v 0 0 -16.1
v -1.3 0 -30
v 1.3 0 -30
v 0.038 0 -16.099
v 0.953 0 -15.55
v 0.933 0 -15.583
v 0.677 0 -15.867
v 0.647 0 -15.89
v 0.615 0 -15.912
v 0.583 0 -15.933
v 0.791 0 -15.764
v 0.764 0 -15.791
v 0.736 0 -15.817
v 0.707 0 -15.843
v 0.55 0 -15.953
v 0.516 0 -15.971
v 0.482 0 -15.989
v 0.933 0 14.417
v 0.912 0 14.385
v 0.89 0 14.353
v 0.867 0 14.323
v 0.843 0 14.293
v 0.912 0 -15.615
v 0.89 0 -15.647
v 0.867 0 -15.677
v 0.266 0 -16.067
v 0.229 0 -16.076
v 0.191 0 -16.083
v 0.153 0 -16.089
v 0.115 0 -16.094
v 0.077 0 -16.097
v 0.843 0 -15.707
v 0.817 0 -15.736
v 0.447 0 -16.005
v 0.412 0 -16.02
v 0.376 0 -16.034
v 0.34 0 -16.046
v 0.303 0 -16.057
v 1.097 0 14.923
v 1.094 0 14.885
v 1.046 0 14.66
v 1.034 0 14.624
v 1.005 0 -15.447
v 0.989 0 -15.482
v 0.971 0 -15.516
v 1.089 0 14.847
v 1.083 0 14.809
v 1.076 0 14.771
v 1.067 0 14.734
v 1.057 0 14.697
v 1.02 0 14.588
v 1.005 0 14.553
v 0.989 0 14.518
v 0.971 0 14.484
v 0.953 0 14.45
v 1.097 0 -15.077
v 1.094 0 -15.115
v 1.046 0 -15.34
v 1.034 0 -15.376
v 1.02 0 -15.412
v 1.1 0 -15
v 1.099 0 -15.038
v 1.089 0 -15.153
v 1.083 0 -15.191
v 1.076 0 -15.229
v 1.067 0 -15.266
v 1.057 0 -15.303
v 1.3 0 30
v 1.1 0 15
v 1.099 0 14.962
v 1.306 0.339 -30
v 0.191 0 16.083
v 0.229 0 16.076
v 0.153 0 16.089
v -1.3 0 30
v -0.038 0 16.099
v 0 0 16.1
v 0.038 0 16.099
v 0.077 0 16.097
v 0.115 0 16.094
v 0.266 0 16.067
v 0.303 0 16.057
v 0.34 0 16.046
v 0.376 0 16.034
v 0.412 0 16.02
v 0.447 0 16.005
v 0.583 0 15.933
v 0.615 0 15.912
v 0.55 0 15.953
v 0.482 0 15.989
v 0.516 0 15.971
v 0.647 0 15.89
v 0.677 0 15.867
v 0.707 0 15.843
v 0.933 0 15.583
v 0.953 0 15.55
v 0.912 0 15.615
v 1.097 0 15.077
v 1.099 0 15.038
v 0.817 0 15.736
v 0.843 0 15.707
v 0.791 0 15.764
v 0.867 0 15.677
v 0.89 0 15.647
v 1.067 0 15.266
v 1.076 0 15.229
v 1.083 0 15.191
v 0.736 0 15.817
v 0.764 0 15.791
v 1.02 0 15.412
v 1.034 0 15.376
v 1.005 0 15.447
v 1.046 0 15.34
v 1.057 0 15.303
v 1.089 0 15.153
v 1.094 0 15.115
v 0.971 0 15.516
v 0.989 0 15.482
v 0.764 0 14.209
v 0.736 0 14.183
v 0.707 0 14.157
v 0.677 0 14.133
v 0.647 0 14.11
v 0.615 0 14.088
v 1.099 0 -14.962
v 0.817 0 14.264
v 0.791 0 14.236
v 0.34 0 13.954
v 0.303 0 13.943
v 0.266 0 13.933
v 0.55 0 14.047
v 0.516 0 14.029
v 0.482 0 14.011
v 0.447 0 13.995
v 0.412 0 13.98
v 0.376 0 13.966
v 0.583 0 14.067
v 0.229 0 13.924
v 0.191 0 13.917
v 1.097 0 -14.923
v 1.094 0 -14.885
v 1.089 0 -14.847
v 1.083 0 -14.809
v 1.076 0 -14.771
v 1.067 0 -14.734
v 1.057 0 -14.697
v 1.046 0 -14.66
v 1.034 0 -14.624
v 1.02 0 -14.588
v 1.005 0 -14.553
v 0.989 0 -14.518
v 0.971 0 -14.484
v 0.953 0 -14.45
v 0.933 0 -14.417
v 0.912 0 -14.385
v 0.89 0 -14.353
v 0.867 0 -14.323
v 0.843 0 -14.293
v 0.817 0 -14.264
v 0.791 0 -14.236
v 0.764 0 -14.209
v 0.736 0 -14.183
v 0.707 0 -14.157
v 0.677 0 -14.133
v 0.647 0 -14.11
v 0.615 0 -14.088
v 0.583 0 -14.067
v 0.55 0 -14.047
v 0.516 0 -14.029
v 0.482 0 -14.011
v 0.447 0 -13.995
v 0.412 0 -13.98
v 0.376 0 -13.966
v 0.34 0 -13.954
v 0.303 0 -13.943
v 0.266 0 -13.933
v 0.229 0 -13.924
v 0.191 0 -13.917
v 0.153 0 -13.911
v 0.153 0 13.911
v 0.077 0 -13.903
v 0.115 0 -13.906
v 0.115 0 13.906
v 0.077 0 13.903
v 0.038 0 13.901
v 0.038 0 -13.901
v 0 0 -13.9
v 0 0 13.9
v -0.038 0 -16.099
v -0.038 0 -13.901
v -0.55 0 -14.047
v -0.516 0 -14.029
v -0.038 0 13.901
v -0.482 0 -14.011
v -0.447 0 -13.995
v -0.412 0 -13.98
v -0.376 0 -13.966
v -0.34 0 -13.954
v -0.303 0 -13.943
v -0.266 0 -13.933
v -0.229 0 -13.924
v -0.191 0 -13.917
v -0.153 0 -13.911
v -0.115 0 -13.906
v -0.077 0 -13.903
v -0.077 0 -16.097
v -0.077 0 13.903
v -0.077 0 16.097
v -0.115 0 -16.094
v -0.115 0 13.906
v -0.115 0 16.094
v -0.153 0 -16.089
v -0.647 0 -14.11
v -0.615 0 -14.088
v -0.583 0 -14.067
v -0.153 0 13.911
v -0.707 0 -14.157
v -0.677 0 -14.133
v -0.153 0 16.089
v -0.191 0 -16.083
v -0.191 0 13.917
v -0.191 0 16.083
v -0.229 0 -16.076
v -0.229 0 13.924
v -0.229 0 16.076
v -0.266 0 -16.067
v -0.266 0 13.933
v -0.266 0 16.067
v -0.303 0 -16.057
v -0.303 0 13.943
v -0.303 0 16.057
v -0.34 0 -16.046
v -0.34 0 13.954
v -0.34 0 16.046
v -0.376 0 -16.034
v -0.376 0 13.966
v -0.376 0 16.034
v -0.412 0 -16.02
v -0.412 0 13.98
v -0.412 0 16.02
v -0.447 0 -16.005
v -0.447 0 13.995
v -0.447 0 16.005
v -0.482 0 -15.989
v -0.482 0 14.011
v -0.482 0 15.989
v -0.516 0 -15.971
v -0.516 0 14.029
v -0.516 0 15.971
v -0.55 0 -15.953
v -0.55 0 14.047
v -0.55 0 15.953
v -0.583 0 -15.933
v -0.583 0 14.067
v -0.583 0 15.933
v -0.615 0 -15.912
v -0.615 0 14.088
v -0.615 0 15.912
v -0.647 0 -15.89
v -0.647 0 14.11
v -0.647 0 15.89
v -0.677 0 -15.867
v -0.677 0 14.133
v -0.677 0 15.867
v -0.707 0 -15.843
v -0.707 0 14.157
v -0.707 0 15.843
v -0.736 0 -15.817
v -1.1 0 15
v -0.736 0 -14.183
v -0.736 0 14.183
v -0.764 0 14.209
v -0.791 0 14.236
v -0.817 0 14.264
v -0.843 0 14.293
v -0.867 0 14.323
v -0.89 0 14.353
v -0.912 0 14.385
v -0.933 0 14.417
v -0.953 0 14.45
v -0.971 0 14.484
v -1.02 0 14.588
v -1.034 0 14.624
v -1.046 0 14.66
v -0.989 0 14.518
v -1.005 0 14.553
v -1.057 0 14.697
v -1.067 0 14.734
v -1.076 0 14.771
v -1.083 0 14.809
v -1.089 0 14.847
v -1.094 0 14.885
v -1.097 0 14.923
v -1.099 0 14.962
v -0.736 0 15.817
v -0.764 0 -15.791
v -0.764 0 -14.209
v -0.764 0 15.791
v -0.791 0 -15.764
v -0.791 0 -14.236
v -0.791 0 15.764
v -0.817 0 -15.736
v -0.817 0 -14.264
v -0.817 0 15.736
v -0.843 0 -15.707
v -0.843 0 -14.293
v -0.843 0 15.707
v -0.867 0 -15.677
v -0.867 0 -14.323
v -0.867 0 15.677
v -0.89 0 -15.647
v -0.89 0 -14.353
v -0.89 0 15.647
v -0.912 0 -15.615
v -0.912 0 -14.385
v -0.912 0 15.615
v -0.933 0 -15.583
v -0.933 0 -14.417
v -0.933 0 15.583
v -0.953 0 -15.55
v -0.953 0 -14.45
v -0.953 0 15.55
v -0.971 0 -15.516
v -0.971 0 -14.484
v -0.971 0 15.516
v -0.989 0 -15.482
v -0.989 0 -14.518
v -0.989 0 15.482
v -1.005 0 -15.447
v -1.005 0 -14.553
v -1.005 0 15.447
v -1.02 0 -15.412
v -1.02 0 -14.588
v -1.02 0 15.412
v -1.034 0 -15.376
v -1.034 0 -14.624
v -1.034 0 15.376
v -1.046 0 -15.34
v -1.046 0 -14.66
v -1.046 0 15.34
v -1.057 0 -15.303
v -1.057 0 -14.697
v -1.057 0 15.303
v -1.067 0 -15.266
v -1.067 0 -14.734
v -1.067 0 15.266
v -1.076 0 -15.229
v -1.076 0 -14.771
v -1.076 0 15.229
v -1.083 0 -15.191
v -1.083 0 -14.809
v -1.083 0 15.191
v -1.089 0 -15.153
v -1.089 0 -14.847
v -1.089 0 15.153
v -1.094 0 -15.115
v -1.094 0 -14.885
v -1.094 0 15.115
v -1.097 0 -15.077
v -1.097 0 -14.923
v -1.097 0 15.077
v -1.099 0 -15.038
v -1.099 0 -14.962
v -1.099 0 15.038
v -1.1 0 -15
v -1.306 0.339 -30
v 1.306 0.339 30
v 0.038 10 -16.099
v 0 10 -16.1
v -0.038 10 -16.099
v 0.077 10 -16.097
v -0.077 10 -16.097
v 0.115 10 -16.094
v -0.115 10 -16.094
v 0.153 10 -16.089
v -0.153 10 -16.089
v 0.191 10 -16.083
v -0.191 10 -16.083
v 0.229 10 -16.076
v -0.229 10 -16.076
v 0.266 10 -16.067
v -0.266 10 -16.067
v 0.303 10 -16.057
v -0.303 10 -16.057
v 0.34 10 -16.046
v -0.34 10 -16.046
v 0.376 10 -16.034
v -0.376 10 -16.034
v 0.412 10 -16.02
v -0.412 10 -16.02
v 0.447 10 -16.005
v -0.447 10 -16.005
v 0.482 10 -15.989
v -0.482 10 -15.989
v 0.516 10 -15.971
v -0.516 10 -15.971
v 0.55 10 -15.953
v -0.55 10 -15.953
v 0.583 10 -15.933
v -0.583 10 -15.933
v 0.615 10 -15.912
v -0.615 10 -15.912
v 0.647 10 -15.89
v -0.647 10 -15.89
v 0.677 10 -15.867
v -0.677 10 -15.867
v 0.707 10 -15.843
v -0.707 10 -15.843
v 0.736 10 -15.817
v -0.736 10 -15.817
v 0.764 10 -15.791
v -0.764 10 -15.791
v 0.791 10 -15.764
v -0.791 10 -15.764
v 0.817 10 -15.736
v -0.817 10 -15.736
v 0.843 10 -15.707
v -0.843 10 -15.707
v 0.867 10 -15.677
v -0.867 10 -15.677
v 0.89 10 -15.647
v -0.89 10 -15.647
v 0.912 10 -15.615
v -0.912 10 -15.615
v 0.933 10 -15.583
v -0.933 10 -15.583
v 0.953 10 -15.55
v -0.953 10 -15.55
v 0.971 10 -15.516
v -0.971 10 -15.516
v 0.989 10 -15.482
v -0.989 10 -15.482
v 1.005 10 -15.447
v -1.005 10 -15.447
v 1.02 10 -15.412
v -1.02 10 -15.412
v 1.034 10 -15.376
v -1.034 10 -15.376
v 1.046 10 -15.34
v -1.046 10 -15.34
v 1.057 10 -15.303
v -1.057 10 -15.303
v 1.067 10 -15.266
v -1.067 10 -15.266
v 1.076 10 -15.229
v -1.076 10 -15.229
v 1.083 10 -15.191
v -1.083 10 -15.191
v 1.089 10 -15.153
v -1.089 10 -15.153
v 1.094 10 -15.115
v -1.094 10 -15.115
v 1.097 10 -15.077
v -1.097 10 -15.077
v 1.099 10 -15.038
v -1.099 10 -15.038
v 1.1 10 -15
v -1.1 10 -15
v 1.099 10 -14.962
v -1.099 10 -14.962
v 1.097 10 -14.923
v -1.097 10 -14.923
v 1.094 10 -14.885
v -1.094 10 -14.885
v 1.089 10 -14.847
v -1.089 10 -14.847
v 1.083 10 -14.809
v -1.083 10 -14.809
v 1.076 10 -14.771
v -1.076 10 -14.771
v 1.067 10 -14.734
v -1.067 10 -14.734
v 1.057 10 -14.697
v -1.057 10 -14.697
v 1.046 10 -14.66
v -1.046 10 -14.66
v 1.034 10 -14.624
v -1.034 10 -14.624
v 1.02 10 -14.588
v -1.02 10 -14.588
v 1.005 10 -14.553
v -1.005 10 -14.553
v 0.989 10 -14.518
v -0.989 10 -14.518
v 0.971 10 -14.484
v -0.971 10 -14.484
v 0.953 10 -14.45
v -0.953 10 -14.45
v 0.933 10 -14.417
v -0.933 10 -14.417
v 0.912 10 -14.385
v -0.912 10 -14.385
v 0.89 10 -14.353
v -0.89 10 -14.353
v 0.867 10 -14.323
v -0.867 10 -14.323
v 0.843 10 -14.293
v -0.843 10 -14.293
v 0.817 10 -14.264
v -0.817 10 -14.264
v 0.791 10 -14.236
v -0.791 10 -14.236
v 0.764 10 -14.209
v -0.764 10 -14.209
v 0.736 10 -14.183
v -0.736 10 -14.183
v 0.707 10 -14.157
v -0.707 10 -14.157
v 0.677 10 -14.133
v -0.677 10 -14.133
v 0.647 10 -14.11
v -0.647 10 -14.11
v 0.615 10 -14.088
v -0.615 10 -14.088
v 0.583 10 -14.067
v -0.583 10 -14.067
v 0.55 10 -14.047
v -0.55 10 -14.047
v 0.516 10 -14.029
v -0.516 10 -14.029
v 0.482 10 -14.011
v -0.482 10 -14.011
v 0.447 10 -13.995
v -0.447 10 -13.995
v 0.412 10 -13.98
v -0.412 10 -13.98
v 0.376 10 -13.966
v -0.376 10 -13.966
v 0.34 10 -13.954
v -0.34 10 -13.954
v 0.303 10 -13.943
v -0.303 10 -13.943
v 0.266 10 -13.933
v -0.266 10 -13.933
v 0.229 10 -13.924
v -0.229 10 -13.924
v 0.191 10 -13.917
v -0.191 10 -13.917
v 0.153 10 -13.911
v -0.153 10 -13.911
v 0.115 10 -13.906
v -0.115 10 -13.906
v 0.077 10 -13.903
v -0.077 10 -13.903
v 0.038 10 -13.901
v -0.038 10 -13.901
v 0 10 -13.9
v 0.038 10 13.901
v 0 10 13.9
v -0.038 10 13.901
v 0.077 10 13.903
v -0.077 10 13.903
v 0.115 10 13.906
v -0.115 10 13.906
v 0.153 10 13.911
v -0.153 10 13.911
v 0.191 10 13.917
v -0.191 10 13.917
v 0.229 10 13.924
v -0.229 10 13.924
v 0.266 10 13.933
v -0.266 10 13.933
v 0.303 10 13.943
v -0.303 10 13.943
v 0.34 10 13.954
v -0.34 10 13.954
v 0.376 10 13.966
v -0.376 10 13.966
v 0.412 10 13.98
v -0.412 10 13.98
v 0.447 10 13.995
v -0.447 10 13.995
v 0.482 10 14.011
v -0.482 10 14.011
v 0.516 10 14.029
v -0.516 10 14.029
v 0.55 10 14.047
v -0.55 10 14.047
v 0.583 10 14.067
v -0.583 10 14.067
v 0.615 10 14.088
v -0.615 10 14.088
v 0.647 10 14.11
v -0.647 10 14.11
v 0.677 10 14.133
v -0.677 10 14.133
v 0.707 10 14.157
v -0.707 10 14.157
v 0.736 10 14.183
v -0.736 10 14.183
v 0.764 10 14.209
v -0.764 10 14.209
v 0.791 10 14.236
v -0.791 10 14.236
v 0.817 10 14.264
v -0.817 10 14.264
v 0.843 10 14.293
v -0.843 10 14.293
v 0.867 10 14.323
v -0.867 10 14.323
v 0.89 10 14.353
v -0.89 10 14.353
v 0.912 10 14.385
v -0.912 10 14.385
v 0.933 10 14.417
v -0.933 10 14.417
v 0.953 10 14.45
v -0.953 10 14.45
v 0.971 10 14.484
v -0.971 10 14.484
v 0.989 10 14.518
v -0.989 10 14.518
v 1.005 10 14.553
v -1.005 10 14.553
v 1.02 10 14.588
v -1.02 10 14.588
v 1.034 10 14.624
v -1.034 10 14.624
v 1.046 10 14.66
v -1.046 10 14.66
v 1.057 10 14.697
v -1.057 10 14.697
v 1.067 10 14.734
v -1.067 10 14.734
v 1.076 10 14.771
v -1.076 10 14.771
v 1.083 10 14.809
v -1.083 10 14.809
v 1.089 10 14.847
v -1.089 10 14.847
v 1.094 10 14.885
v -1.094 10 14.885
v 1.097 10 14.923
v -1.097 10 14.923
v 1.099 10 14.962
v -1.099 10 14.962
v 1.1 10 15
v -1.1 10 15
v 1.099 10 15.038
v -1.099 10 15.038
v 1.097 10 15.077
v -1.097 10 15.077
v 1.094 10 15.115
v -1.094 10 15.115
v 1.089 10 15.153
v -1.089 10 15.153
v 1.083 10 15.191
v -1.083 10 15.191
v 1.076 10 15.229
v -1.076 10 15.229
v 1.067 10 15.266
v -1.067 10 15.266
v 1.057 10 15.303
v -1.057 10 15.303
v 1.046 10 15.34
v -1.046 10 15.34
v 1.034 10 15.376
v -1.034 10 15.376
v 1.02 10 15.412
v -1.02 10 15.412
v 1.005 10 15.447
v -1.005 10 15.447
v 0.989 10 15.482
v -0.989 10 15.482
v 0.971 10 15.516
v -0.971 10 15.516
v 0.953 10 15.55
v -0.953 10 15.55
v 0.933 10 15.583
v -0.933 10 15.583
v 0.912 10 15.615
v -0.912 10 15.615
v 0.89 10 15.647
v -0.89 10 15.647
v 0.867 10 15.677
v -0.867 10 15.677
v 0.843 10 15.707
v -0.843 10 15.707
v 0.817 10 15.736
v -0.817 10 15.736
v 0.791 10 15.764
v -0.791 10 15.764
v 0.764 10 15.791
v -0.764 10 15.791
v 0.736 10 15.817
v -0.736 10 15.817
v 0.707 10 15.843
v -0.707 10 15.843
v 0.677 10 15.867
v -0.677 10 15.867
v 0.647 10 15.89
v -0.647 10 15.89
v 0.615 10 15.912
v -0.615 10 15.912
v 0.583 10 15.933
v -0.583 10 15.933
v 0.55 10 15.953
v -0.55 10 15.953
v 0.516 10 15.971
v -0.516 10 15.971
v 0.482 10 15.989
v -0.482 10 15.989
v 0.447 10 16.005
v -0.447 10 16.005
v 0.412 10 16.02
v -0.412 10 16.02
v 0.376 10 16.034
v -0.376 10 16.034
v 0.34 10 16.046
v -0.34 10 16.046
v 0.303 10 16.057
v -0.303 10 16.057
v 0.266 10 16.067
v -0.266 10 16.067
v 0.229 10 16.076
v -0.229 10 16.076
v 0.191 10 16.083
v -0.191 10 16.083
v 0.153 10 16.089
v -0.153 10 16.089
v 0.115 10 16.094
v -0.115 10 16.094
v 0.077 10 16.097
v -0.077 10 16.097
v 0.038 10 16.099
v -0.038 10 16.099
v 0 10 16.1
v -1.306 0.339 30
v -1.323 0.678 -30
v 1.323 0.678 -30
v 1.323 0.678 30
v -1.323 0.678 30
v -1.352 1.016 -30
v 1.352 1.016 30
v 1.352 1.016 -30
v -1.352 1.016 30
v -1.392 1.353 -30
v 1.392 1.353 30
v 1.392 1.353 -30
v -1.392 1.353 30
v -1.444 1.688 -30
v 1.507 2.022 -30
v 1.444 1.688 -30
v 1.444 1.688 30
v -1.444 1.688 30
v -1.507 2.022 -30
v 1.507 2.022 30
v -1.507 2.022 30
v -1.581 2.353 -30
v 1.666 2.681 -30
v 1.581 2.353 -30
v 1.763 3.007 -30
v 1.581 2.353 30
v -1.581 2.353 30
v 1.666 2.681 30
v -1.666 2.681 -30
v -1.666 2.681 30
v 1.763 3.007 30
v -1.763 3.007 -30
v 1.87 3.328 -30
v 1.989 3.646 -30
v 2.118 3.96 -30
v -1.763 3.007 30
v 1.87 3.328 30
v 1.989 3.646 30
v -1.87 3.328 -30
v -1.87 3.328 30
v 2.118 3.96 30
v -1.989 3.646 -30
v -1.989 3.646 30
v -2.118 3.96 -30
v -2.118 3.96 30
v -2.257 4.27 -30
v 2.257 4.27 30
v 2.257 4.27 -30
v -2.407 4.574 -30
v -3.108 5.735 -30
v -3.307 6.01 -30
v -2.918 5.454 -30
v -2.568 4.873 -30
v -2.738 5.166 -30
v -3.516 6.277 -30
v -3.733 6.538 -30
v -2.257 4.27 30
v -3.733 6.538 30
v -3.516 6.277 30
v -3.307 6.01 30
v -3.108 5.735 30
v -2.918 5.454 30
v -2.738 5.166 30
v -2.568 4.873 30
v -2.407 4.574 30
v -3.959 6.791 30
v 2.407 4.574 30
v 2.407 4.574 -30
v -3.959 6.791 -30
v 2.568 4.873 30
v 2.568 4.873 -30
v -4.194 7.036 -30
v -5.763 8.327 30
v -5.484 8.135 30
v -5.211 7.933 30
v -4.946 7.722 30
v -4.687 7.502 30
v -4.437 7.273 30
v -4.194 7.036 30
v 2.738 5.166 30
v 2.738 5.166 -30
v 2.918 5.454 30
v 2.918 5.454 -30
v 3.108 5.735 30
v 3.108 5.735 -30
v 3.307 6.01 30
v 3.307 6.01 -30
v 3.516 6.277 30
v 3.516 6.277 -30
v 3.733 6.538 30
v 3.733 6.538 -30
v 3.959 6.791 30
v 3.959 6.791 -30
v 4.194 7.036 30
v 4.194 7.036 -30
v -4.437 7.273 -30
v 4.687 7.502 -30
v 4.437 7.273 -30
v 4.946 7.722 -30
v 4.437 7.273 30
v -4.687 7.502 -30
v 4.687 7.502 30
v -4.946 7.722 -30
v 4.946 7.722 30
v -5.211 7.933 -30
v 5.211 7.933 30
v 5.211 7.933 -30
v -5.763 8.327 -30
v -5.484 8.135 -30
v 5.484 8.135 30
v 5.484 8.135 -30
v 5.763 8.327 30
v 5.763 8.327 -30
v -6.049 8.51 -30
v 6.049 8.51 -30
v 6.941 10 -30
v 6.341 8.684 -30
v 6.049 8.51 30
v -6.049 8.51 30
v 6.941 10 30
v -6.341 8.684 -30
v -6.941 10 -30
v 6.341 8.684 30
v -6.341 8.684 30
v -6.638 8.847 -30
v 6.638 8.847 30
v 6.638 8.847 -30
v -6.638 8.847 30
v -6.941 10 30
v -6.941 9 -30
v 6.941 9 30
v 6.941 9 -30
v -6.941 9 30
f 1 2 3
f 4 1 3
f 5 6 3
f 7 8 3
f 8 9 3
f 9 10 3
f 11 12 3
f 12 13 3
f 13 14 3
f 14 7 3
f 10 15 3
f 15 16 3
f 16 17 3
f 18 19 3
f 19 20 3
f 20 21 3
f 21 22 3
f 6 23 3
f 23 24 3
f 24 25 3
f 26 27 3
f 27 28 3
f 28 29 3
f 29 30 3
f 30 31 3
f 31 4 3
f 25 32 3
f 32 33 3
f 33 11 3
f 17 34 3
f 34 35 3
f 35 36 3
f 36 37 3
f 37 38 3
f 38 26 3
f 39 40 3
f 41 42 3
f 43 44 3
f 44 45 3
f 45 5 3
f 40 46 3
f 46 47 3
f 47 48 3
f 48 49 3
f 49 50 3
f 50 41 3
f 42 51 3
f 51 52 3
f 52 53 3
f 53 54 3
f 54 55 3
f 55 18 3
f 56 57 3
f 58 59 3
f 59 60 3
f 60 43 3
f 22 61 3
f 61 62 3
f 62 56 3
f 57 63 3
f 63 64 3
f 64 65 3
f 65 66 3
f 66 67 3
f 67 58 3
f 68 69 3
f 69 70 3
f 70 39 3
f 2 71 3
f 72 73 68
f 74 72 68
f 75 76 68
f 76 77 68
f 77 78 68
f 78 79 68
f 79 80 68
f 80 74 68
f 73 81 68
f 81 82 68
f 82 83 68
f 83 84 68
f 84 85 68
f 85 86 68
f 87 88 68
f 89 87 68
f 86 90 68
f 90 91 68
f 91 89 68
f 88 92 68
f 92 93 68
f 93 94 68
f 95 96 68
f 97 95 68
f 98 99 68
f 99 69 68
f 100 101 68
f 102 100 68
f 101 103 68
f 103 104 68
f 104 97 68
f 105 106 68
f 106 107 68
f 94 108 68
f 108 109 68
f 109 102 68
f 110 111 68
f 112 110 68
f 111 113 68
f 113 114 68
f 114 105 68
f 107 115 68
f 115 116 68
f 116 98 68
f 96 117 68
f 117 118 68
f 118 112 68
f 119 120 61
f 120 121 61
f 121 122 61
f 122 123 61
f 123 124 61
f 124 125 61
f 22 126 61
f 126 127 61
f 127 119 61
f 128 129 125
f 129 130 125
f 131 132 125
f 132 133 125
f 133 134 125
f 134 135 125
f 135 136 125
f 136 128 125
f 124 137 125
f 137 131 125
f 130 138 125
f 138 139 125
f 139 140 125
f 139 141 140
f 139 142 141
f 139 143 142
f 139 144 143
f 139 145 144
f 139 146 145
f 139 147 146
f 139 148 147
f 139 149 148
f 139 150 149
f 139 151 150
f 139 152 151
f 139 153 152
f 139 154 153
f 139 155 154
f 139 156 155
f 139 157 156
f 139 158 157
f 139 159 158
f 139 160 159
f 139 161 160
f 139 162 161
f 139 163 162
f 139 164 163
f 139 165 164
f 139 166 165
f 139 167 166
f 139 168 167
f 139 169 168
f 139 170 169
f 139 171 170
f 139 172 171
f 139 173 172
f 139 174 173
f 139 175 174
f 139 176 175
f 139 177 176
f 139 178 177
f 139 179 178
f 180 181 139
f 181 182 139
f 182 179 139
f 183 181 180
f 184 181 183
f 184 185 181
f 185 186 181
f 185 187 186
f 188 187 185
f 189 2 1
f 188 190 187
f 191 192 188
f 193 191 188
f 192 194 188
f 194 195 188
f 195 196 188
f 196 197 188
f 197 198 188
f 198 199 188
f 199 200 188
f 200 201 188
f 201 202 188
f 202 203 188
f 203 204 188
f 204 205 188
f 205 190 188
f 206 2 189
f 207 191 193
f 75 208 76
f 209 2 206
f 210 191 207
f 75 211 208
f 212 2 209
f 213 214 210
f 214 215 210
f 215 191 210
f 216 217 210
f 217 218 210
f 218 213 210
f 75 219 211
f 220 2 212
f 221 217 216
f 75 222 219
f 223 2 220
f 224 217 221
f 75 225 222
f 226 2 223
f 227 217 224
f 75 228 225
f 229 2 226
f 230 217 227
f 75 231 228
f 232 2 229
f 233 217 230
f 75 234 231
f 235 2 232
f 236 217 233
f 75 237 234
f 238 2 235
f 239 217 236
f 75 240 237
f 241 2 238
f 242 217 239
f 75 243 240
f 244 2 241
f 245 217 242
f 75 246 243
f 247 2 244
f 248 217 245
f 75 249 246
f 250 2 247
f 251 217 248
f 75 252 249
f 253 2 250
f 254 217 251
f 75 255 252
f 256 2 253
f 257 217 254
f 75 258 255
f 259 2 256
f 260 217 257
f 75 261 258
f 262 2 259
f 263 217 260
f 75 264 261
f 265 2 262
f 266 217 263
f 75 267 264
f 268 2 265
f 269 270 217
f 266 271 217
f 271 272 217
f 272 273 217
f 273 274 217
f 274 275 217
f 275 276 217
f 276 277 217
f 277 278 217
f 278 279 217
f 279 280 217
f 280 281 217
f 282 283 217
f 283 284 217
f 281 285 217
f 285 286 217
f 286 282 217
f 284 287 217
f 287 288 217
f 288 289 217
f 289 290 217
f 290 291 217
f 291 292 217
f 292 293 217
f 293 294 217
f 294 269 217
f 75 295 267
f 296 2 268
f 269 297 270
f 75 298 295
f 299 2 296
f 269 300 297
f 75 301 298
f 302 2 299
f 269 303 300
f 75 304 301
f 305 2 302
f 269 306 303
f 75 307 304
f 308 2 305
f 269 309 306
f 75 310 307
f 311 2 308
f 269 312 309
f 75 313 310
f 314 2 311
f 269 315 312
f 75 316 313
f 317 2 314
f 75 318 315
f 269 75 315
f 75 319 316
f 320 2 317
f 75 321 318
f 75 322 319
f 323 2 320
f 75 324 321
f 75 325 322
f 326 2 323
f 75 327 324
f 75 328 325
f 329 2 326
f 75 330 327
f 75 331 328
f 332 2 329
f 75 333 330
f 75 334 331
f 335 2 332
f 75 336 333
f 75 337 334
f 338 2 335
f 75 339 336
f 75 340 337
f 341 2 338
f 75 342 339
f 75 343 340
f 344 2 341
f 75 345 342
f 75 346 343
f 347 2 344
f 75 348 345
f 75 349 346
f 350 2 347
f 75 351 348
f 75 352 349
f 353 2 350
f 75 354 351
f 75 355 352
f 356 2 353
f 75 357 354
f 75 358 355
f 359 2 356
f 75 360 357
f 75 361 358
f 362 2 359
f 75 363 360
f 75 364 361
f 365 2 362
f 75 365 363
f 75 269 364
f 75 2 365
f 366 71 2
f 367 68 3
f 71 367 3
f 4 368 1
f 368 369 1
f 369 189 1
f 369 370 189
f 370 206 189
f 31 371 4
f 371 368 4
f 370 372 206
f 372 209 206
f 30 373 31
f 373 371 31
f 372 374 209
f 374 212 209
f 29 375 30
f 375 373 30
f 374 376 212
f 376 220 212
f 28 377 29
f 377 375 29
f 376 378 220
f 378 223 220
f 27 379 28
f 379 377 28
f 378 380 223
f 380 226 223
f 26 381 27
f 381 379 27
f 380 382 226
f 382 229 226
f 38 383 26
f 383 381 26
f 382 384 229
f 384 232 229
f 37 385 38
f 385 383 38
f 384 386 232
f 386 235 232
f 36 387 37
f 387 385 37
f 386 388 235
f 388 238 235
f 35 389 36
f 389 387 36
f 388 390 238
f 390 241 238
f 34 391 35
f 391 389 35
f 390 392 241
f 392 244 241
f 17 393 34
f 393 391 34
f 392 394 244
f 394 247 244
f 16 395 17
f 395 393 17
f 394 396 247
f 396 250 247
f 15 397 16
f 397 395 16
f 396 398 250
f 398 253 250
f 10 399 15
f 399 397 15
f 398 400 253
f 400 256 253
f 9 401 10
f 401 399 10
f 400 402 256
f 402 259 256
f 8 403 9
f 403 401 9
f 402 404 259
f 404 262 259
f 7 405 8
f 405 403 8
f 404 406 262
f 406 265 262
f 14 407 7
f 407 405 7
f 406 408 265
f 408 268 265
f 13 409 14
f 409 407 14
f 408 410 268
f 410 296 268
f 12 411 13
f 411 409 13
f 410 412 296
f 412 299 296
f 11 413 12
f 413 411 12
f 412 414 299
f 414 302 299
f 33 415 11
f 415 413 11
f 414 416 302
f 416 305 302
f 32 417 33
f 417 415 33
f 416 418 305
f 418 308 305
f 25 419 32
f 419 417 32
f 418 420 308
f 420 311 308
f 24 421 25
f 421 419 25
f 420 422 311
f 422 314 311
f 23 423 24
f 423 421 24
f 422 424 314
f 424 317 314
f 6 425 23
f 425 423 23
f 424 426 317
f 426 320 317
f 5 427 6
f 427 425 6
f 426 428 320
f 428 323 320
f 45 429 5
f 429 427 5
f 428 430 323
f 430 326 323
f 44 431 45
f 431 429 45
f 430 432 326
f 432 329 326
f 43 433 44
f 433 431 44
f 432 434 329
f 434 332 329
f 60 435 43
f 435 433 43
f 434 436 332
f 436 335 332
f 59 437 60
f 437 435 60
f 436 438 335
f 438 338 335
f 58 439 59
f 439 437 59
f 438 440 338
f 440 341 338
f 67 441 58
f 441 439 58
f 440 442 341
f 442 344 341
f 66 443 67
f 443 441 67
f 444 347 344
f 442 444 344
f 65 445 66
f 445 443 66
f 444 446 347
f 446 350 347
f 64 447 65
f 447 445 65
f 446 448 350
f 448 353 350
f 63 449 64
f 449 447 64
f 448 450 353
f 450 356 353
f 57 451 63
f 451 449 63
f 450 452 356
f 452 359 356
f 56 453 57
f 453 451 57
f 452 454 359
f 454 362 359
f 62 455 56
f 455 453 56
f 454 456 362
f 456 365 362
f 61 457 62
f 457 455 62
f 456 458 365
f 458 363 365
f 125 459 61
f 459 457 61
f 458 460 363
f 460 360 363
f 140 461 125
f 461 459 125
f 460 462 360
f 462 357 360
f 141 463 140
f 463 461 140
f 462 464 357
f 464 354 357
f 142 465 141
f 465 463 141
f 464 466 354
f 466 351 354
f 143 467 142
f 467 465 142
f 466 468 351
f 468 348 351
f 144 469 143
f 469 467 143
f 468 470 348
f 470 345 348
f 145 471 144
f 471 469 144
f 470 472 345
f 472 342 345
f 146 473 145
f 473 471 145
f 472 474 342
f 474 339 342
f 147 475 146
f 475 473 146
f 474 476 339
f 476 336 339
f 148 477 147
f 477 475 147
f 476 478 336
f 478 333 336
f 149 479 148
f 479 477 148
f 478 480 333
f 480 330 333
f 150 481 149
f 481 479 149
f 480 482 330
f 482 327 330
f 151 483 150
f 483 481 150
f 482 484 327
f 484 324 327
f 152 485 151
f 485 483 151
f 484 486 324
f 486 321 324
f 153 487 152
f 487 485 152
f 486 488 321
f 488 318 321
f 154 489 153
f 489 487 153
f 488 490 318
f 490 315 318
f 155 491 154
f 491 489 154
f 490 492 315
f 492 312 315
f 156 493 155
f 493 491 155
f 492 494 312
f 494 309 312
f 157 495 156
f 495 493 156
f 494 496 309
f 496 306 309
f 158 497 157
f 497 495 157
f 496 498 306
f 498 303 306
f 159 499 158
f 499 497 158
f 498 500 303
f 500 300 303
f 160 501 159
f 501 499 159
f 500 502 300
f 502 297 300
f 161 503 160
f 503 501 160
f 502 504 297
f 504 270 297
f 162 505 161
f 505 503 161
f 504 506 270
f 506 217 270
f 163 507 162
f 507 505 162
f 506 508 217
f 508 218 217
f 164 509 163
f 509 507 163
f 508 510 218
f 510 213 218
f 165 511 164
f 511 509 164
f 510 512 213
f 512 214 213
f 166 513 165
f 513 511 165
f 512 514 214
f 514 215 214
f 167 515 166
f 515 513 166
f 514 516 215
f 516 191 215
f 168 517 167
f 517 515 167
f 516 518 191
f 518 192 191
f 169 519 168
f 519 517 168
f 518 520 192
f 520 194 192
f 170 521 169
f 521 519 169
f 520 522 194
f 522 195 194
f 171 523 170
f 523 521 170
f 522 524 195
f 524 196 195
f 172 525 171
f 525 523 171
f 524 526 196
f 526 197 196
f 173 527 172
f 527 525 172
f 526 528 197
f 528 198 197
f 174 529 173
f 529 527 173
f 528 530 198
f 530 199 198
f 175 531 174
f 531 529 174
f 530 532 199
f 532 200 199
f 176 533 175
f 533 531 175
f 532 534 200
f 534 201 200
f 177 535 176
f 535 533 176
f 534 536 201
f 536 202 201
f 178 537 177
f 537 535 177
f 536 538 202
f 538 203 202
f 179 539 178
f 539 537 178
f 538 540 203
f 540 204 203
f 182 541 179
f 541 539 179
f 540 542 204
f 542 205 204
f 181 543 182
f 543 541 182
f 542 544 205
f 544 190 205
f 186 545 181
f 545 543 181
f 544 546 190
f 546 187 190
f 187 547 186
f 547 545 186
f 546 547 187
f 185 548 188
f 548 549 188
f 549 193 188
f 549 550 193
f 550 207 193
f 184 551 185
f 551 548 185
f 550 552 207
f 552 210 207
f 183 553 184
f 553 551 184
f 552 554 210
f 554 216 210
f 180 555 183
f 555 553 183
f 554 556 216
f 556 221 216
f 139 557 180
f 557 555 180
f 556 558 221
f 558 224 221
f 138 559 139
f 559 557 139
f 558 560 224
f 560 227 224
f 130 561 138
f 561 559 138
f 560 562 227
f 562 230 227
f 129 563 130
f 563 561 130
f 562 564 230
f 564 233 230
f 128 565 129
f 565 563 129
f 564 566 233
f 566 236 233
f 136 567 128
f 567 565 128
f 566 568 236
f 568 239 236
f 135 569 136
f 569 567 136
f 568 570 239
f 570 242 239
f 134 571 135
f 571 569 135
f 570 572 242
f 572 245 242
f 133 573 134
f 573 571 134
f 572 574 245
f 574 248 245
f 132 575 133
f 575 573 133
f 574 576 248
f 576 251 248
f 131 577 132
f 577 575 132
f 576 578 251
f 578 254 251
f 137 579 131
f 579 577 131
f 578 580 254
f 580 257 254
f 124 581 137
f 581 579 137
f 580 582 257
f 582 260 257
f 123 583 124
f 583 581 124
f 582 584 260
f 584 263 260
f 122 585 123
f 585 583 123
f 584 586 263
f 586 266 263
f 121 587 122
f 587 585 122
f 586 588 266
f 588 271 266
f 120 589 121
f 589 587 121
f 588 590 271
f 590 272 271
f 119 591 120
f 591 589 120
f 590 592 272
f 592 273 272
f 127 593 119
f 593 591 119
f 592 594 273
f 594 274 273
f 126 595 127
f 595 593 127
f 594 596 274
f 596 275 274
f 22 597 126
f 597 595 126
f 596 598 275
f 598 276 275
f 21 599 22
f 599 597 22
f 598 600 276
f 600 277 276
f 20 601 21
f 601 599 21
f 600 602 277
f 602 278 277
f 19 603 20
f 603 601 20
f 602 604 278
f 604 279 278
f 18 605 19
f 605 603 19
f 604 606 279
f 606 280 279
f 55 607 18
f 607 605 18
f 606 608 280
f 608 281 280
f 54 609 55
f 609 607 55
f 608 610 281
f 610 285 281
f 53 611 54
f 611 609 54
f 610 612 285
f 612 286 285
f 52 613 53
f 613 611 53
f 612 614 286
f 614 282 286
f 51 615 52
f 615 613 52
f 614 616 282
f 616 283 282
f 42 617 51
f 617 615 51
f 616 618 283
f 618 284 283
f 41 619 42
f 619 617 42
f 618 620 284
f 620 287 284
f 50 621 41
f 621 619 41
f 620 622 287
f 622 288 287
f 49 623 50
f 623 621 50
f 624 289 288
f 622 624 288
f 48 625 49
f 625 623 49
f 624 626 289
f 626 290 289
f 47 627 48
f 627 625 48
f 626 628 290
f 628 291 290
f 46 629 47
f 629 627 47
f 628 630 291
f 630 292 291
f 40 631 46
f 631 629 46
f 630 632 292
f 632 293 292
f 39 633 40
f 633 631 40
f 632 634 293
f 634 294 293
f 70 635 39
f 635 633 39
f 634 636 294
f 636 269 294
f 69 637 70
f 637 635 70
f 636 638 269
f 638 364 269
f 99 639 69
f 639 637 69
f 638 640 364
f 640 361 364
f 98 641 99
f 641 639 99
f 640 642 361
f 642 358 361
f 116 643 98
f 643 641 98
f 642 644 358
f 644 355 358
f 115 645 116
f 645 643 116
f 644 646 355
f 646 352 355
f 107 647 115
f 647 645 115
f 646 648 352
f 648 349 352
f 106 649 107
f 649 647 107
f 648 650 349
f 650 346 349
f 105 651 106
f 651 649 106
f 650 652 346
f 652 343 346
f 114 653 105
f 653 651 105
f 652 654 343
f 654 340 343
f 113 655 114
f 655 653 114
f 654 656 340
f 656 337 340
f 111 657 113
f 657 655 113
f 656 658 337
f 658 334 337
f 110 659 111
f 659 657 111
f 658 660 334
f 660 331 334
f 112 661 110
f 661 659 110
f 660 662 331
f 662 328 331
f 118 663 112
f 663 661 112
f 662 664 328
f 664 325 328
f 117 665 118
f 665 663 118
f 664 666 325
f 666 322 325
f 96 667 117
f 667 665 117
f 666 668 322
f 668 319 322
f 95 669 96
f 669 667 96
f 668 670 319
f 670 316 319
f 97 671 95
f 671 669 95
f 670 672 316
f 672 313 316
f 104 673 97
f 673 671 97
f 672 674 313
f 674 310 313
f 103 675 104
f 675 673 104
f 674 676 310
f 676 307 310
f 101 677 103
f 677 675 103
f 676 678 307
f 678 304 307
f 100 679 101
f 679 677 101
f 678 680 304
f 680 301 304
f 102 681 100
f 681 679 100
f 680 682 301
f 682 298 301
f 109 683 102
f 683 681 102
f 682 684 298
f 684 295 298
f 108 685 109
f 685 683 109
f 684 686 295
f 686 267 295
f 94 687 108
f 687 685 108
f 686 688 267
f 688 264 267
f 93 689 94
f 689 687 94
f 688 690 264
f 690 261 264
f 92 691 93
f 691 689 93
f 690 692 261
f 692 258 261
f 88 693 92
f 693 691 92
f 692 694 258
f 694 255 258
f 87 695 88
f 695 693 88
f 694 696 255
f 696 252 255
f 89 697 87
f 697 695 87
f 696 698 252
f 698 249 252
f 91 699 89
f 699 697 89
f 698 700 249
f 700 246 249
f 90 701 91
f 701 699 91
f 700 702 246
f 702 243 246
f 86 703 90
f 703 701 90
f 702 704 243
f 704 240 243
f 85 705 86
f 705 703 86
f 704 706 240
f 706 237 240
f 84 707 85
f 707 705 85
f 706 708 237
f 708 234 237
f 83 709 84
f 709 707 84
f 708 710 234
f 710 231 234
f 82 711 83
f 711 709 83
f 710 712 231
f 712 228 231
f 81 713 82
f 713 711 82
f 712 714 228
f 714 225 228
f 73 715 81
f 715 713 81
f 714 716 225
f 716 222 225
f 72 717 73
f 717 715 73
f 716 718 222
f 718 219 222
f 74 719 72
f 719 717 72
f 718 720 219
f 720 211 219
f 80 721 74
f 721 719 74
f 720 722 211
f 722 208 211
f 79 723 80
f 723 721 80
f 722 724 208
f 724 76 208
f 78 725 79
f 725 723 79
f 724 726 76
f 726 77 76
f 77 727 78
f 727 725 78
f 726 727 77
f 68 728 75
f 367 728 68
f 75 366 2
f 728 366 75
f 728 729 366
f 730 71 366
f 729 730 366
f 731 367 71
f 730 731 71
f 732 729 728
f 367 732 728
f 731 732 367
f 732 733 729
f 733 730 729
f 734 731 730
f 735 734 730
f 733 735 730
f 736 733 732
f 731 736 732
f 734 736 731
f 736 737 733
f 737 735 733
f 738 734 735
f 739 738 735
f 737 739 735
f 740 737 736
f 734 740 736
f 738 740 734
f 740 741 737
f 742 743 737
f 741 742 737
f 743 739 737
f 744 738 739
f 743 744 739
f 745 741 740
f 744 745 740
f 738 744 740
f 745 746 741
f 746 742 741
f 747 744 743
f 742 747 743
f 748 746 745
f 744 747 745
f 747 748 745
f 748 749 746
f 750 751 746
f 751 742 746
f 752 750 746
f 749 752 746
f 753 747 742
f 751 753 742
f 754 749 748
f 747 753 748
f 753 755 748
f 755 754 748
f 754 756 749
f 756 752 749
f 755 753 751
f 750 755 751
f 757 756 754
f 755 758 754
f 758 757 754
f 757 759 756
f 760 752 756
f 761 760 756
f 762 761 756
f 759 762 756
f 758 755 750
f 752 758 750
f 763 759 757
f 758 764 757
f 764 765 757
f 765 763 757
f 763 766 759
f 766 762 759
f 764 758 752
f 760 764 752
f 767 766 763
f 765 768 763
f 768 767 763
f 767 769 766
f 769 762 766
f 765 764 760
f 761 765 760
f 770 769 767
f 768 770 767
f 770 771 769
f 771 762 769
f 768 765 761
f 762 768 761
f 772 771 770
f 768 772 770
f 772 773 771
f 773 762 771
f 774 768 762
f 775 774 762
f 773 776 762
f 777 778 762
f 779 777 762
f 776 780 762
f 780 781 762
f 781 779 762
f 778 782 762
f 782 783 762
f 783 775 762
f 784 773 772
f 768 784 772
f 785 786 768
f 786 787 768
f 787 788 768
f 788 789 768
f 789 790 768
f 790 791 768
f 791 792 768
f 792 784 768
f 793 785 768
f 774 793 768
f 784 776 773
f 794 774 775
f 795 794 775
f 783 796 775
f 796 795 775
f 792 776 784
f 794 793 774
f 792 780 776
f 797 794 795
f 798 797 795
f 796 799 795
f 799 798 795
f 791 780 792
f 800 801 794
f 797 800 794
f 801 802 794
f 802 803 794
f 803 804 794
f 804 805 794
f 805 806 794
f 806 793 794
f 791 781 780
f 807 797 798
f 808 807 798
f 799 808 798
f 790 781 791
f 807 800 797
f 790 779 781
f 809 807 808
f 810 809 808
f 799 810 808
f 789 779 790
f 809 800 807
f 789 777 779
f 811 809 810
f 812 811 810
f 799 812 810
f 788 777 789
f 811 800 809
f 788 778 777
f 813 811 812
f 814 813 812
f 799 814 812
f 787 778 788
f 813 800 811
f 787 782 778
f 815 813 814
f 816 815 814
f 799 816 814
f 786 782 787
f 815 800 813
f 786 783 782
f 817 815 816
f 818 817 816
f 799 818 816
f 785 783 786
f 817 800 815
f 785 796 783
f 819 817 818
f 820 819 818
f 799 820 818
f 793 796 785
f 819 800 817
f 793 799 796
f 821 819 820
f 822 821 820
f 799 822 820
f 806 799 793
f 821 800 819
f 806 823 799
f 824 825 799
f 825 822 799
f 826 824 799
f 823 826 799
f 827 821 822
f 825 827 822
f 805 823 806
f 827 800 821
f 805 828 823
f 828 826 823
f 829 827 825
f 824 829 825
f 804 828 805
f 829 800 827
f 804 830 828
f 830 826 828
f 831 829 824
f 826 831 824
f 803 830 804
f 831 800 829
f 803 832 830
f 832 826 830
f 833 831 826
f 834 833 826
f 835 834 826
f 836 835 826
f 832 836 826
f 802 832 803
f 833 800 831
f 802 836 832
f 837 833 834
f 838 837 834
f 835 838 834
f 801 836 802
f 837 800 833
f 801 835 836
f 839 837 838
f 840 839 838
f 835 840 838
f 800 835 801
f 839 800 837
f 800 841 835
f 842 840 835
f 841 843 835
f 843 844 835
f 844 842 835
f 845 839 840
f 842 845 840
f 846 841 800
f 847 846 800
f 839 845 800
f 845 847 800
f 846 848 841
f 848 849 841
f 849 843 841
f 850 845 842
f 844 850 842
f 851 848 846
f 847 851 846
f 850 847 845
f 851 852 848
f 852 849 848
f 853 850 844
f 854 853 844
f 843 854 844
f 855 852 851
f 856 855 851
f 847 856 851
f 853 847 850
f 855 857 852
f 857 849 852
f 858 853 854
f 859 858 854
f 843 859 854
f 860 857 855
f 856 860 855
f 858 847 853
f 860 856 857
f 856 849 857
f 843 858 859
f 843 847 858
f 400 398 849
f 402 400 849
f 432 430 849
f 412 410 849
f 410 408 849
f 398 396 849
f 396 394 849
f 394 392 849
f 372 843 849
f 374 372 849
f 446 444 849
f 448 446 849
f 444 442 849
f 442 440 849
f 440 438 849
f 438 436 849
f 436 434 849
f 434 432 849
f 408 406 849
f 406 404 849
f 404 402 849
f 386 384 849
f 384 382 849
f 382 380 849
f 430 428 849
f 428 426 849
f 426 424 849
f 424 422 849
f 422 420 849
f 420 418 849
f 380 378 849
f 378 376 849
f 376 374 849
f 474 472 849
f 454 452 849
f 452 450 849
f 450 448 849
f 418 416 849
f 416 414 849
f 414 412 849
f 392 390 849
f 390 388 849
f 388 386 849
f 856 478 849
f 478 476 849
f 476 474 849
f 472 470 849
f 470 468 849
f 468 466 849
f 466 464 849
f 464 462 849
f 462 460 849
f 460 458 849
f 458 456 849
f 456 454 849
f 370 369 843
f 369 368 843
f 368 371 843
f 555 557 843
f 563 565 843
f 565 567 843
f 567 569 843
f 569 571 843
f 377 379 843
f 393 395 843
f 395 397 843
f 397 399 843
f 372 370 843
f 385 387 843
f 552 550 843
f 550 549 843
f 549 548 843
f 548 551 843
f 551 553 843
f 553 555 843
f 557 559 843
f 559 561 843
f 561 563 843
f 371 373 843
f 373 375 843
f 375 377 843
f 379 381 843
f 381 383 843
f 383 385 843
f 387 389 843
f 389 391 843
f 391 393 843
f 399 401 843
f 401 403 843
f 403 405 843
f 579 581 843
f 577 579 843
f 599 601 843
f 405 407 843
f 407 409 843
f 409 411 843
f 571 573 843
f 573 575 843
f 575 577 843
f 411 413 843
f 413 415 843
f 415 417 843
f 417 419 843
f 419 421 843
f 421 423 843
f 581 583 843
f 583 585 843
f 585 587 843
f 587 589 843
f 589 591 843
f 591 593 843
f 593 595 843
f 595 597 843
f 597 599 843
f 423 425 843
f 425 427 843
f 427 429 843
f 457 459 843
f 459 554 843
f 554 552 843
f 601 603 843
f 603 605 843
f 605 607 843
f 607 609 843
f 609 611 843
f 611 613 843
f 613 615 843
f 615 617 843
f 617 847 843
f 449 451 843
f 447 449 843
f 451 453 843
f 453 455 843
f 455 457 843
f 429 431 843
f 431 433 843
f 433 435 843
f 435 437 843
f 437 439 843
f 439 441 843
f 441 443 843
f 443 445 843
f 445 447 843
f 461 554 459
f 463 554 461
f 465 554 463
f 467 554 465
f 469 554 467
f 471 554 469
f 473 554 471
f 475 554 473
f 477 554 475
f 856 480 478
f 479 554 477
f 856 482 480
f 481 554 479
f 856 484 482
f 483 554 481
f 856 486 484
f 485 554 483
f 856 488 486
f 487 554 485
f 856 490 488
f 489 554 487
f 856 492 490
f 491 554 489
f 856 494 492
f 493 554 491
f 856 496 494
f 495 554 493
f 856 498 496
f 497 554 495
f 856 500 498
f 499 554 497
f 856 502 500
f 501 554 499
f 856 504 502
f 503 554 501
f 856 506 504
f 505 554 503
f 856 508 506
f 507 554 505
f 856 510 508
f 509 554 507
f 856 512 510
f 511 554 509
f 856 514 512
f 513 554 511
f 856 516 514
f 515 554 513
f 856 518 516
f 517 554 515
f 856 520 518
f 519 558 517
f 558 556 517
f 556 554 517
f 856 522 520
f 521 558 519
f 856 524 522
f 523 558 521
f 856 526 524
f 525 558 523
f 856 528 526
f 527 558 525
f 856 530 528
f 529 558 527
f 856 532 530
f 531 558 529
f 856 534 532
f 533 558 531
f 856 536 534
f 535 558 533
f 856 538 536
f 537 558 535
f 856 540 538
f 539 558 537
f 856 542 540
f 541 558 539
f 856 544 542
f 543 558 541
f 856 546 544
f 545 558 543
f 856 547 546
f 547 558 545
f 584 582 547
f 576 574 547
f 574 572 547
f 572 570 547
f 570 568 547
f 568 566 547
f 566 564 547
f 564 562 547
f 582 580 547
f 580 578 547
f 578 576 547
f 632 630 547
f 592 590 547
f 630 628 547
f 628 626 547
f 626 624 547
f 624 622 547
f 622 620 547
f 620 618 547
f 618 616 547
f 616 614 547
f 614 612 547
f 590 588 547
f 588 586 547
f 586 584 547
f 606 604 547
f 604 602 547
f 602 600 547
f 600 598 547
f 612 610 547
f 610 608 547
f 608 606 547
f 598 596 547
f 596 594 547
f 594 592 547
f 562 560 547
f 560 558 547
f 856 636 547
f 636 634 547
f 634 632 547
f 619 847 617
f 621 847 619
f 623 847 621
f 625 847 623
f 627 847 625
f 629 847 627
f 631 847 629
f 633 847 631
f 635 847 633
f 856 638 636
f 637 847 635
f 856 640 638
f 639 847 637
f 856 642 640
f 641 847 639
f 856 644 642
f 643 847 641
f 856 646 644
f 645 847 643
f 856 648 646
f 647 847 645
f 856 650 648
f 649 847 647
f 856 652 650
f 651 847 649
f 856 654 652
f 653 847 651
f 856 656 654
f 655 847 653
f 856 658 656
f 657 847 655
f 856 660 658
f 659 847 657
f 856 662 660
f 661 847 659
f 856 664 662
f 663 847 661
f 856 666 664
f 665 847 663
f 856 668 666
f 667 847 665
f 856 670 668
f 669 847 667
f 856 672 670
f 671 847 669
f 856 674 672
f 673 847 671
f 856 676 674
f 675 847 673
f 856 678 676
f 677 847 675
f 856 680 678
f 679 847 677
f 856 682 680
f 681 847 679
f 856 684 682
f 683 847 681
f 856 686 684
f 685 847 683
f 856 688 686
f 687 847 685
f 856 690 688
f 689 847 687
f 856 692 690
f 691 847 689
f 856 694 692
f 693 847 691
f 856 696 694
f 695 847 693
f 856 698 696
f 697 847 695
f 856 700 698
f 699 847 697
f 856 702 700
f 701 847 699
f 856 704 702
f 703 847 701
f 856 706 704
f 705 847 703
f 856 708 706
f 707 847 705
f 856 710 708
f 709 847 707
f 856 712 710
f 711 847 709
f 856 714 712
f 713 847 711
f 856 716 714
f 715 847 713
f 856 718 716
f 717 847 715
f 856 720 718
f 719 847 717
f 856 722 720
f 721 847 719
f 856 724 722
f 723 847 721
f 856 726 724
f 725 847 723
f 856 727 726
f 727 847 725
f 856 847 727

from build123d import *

# Parameters (mm, degrees)
BOSS_EXTRUDE1_DEPTH        = 30
F_2_2_2_2_DIAMETER_HOLE1_D = 2.2


with BuildPart() as part:
    # Sketch1 → Boss-Extrude1 (new, symmetric)
    with BuildSketch(Plane.XY):
        with BuildLine():
            Line((-1.3, 0), (1.3, 0))
            ThreePointArc((1.3, 0), (2.826836794, 5.310885546), (6.941101056, 9))
            Line((6.941101056, 9), (6.941101056, 10))
            Line((6.941101056, 10), (-6.941101056, 10))
            Line((-6.941101056, 10), (-6.941101056, 9))
            ThreePointArc((-6.941101056, 9), (-2.826836794, 5.310885546), (-1.3, 0))
        make_face()
    extrude(amount=BOSS_EXTRUDE1_DEPTH, both=True)

    # Ø2.2 (2.2) Diameter Hole1 (through all)
    with Locations(Plane(origin=(0, 10, 15), x_dir=(0, 0, 1), z_dir=(0, 1, 0))):
        with Locations((0, 0), (-30, 0)):
            Hole(F_2_2_2_2_DIAMETER_HOLE1_D / 2)


solid = part.part
